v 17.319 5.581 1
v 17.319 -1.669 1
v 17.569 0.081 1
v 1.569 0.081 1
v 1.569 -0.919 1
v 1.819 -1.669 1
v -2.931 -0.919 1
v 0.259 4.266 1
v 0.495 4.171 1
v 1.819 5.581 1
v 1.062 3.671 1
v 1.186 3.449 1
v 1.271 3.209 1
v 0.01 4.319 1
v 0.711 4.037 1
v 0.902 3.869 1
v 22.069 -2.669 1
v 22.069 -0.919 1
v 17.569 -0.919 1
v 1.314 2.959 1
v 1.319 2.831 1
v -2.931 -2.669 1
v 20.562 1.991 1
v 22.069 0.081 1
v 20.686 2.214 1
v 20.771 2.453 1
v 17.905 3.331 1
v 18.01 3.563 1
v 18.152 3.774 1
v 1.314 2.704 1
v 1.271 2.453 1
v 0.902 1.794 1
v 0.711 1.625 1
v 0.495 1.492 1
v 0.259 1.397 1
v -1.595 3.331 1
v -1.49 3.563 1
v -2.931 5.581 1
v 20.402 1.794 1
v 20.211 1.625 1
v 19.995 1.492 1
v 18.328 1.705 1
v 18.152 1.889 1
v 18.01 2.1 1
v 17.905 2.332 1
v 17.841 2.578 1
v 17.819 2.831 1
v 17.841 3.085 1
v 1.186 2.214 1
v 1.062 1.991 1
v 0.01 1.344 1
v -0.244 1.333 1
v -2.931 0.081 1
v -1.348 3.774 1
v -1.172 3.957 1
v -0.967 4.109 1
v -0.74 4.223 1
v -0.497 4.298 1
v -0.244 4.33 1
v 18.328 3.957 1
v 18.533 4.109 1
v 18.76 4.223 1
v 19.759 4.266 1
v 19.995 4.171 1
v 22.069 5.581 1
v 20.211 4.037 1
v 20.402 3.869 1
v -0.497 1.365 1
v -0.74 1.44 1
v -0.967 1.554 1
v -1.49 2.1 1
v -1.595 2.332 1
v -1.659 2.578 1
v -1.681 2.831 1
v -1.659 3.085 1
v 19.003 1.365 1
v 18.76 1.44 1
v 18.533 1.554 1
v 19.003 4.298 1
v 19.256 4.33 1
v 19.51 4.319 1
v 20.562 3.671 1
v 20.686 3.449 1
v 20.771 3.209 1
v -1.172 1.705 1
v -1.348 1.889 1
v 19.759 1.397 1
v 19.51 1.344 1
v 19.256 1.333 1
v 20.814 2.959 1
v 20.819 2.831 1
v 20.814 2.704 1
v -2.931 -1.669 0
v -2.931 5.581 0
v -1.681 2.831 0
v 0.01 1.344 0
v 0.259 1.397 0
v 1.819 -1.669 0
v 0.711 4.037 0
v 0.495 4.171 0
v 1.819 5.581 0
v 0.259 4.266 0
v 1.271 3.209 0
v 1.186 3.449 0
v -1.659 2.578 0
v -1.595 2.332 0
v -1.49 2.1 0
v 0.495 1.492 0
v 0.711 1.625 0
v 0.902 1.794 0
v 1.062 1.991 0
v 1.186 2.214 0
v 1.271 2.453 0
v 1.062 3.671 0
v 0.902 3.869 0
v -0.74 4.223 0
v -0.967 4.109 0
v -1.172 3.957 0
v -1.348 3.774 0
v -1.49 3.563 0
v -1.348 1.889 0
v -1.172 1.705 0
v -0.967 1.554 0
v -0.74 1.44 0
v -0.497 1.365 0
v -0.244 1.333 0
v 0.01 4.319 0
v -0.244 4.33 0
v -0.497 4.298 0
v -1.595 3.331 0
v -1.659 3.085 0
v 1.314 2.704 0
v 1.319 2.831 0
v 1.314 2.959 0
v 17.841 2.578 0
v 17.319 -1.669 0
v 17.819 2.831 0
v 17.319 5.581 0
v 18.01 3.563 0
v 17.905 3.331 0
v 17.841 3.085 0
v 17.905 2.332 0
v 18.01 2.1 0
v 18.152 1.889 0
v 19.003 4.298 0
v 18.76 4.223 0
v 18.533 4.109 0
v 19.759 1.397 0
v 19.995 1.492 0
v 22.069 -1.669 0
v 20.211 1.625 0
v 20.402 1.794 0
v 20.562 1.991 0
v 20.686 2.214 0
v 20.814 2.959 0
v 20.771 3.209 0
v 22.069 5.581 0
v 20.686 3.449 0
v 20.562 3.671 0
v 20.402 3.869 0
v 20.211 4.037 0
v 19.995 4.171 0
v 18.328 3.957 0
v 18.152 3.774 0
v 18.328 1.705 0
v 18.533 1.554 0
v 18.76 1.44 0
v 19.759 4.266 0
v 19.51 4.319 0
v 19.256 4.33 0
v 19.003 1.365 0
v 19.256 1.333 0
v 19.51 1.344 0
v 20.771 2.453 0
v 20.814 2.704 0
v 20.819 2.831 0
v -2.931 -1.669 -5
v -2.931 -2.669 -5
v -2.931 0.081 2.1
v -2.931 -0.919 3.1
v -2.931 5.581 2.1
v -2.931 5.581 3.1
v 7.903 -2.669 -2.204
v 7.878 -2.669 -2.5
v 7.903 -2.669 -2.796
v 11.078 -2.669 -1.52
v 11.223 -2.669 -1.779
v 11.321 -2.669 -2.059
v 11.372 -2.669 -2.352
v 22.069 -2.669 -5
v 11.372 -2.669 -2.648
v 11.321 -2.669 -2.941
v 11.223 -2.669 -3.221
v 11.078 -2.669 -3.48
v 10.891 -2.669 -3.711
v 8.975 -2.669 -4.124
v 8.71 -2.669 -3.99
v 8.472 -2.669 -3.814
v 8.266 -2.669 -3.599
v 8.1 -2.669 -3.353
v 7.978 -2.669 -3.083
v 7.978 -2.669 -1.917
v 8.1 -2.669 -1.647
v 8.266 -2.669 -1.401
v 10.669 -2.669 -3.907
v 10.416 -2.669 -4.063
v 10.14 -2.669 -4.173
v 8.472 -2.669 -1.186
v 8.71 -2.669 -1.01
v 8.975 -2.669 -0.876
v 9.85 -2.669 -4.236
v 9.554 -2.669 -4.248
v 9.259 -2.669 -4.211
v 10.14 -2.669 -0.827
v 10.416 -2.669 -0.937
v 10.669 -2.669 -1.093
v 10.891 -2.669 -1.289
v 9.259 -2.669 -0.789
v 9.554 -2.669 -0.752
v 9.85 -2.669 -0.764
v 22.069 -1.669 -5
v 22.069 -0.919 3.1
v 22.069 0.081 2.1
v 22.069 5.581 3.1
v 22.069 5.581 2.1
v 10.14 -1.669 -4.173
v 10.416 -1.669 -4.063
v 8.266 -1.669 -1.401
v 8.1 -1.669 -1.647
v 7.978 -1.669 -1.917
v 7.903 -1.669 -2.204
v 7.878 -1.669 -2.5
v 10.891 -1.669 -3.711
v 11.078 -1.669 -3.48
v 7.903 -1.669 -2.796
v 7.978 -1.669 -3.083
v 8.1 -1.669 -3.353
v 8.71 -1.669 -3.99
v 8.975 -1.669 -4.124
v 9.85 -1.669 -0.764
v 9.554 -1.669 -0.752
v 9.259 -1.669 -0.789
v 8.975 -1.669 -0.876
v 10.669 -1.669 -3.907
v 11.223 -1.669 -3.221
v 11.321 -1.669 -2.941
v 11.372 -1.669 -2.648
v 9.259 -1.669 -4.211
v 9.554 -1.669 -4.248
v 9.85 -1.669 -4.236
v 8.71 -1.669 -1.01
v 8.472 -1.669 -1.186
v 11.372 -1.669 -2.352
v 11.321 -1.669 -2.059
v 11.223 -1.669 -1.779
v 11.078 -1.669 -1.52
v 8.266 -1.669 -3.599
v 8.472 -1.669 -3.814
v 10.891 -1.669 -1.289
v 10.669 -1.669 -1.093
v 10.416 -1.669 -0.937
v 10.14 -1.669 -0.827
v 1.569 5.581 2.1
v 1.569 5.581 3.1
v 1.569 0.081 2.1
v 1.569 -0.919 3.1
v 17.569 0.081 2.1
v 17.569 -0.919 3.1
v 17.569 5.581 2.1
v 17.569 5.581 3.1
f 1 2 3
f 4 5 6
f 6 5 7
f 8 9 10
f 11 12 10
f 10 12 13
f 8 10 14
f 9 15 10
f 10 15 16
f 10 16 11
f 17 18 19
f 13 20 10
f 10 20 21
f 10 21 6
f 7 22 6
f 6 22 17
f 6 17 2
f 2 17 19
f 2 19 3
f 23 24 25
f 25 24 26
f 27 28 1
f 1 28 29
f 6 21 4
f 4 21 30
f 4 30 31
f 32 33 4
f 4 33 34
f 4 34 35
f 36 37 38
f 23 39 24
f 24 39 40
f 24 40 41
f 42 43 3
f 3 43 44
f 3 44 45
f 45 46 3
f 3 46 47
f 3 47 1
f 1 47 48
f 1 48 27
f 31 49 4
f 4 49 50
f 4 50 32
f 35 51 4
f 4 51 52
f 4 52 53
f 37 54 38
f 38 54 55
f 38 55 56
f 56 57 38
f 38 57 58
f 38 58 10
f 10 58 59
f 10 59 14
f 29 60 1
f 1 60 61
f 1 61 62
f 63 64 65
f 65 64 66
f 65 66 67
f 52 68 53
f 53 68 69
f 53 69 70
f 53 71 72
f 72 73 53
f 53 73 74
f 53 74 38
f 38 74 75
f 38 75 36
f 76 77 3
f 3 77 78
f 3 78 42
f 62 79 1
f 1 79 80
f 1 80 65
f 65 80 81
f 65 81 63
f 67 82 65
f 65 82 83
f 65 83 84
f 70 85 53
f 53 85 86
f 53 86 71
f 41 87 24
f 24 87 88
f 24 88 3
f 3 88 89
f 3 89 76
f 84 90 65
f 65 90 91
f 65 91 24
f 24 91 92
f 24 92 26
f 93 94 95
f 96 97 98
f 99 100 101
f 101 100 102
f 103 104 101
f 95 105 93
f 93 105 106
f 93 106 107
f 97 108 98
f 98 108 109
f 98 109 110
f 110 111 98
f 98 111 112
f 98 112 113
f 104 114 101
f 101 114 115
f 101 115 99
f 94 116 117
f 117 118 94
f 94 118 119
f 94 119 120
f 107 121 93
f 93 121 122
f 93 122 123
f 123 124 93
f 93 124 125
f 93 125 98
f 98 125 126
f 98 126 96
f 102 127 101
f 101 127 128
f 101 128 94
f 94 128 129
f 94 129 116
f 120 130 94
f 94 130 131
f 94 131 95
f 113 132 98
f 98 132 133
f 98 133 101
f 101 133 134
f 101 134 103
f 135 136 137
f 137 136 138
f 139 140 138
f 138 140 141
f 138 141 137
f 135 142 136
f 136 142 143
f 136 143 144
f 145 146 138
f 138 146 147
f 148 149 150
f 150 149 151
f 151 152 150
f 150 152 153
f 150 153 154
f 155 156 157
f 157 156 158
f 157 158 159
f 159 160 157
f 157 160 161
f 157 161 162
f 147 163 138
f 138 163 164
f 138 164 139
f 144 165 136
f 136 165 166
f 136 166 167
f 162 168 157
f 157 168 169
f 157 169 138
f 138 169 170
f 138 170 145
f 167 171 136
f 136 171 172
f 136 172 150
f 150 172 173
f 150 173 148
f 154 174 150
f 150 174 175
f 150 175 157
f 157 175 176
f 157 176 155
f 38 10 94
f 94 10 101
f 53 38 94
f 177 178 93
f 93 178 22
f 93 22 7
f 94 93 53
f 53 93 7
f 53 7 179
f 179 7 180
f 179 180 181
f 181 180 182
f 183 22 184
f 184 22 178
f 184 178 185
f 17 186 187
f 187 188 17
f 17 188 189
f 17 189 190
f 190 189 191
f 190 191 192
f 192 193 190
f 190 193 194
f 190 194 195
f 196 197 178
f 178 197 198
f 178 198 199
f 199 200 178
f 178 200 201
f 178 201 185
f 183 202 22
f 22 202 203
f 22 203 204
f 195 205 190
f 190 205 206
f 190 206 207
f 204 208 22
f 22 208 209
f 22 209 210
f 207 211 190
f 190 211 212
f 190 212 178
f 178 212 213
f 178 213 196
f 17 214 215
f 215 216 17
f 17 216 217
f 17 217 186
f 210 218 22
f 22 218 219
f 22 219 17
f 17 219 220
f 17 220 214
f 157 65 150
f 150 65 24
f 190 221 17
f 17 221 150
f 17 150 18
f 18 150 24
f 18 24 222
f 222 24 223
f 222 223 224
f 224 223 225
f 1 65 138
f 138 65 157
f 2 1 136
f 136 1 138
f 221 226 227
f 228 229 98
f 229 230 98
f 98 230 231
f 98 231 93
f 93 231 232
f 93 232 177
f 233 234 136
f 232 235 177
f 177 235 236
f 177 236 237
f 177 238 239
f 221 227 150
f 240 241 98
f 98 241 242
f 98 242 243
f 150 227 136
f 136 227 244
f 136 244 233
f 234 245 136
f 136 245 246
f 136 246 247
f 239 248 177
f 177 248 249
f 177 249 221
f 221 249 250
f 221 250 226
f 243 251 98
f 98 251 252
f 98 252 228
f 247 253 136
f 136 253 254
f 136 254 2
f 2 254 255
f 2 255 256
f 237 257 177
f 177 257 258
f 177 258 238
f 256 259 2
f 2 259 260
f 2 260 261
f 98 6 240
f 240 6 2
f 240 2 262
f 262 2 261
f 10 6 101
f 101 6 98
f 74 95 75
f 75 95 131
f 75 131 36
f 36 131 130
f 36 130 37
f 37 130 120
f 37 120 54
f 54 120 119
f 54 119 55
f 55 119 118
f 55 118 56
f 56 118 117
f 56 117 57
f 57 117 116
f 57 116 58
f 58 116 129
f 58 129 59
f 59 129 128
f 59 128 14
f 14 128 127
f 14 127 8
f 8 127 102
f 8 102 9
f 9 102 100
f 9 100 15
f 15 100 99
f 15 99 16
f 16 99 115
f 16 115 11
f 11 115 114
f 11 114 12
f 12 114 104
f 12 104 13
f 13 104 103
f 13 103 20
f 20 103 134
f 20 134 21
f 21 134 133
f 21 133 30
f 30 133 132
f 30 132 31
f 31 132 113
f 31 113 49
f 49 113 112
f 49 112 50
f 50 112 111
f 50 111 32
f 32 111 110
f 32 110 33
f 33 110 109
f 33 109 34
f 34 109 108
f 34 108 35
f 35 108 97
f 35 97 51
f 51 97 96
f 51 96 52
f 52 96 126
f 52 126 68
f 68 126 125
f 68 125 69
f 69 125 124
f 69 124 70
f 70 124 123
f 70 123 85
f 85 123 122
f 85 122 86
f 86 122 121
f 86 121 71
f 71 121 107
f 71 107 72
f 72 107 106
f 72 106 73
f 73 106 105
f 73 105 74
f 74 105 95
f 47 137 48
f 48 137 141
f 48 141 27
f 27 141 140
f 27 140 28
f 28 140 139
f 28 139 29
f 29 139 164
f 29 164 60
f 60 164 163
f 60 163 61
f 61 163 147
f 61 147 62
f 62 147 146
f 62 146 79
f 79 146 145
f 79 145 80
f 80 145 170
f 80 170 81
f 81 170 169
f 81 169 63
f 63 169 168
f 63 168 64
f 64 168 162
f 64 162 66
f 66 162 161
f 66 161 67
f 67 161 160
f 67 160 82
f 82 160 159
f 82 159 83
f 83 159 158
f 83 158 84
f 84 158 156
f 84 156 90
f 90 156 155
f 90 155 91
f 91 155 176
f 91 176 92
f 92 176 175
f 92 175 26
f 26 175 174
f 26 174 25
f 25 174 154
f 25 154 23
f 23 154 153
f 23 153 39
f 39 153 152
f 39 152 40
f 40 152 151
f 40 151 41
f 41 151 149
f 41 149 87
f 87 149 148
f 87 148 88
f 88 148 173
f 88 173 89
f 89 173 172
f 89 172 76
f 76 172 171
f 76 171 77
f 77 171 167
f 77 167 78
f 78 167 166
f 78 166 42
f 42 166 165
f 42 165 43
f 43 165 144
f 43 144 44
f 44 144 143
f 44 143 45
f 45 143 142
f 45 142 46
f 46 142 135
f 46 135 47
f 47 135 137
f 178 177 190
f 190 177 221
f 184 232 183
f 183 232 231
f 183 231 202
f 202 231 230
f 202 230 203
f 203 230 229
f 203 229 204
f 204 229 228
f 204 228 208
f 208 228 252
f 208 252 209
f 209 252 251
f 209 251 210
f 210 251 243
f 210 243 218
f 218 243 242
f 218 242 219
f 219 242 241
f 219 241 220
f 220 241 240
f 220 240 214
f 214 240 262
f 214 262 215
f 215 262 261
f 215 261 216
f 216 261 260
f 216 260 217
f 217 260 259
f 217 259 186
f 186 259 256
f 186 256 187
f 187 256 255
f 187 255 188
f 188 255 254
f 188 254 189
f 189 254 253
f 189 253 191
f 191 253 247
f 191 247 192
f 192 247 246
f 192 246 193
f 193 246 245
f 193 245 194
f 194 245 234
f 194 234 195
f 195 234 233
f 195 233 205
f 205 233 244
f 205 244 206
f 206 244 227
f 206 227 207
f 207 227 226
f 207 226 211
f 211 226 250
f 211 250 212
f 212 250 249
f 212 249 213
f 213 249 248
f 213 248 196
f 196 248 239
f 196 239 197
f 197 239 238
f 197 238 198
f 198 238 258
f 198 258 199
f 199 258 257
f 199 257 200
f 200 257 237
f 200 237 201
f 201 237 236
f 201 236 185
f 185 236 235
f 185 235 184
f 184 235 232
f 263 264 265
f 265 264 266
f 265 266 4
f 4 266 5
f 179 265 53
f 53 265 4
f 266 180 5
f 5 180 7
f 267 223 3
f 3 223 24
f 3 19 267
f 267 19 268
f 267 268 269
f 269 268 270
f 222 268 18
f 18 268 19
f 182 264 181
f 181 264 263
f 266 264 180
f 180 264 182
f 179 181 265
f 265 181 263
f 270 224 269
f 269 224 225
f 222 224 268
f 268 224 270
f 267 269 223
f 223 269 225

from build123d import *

# Parameters (mm, degrees)
ESBO_O1_R                = 1.5
RESSALTO_EXTRUS_O1_DEPTH = 1
ESBO_O2_W                = 25
ESBO_O2_H                = 1
RESSALTO_EXTRUS_O2_DEPTH = 5
ESBO_O3_R                = 1.75
CORTE_EXTRUS_O1_DEPTH    = 5
ESBO_O4_W                = 4.5
ESBO_O4_H                = 1
RESSALTO_EXTRUS_O3_DEPTH = 1.1
ESBO_O5_W                = 4.5
ESBO_O5_H                = 6.5
RESSALTO_EXTRUS_O4_DEPTH = 1


with BuildPart() as part:
    # Esboço1 → Ressalto-extrusão1 (new body)
    with BuildSketch(Plane.XY):
        Polygon((-2.930659551, 5.581459362), (-2.930659551, -2.668540638), (22.069340449, -2.668540638), (22.069340449, 5.581459362), (17.319340449, 5.581459362), (17.319340449, -1.668540638), (1.819340449, -1.668540638), (1.819340449, 5.581459362), align=None)
        with Locations((-0.180659551, 2.831459362)):
            Circle(ESBO_O1_R, mode=Mode.SUBTRACT)
        with Locations((19.319340449, 2.831459362)):
            Circle(ESBO_O1_R, mode=Mode.SUBTRACT)
    extrude(amount=RESSALTO_EXTRUS_O1_DEPTH)

    # Esboço2 → Ressalto-extrusão2 (add)
    with BuildSketch(Plane(origin=(0, 0, 0), x_dir=(-1, 0, 0), z_dir=(0, 0, -1))):
        with Locations((-9.569340449, -2.168540638)):
            Rectangle(ESBO_O2_W, ESBO_O2_H)
    extrude(amount=RESSALTO_EXTRUS_O2_DEPTH)

    # Esboço3 → Corte-extrusão1 (cut)
    with BuildSketch(Plane(origin=(0, -1.668540638, 0), x_dir=(1, 0, 0), z_dir=(0, 1, 0))):
        with Locations(Location((9.627945133, 2.5, 0), (0, 0, 180))):
            Circle(ESBO_O3_R)
    extrude(amount=-CORTE_EXTRUS_O1_DEPTH, mode=Mode.SUBTRACT)

    # Esboço4 → Ressalto-extrusão3 (add)
    with BuildSketch(Plane.XY.offset(1)):
        with Locations((-0.680659551, -0.418540638)):
            Rectangle(ESBO_O4_W, ESBO_O4_H)
        with Locations((19.819340449, -0.418540638)):
            Rectangle(ESBO_O4_W, ESBO_O4_H)
    extrude(amount=RESSALTO_EXTRUS_O3_DEPTH)

    # Esboço5 → Ressalto-extrusão4 (add)
    with BuildSketch(Plane.XY.offset(2.1)):
        with Locations((-0.680659551, 2.331459362)):
            Rectangle(ESBO_O5_W, ESBO_O5_H)
        with Locations((19.819340449, 2.331459362)):
            Rectangle(ESBO_O5_W, ESBO_O5_H)
    extrude(amount=RESSALTO_EXTRUS_O4_DEPTH)


solid = part.part
